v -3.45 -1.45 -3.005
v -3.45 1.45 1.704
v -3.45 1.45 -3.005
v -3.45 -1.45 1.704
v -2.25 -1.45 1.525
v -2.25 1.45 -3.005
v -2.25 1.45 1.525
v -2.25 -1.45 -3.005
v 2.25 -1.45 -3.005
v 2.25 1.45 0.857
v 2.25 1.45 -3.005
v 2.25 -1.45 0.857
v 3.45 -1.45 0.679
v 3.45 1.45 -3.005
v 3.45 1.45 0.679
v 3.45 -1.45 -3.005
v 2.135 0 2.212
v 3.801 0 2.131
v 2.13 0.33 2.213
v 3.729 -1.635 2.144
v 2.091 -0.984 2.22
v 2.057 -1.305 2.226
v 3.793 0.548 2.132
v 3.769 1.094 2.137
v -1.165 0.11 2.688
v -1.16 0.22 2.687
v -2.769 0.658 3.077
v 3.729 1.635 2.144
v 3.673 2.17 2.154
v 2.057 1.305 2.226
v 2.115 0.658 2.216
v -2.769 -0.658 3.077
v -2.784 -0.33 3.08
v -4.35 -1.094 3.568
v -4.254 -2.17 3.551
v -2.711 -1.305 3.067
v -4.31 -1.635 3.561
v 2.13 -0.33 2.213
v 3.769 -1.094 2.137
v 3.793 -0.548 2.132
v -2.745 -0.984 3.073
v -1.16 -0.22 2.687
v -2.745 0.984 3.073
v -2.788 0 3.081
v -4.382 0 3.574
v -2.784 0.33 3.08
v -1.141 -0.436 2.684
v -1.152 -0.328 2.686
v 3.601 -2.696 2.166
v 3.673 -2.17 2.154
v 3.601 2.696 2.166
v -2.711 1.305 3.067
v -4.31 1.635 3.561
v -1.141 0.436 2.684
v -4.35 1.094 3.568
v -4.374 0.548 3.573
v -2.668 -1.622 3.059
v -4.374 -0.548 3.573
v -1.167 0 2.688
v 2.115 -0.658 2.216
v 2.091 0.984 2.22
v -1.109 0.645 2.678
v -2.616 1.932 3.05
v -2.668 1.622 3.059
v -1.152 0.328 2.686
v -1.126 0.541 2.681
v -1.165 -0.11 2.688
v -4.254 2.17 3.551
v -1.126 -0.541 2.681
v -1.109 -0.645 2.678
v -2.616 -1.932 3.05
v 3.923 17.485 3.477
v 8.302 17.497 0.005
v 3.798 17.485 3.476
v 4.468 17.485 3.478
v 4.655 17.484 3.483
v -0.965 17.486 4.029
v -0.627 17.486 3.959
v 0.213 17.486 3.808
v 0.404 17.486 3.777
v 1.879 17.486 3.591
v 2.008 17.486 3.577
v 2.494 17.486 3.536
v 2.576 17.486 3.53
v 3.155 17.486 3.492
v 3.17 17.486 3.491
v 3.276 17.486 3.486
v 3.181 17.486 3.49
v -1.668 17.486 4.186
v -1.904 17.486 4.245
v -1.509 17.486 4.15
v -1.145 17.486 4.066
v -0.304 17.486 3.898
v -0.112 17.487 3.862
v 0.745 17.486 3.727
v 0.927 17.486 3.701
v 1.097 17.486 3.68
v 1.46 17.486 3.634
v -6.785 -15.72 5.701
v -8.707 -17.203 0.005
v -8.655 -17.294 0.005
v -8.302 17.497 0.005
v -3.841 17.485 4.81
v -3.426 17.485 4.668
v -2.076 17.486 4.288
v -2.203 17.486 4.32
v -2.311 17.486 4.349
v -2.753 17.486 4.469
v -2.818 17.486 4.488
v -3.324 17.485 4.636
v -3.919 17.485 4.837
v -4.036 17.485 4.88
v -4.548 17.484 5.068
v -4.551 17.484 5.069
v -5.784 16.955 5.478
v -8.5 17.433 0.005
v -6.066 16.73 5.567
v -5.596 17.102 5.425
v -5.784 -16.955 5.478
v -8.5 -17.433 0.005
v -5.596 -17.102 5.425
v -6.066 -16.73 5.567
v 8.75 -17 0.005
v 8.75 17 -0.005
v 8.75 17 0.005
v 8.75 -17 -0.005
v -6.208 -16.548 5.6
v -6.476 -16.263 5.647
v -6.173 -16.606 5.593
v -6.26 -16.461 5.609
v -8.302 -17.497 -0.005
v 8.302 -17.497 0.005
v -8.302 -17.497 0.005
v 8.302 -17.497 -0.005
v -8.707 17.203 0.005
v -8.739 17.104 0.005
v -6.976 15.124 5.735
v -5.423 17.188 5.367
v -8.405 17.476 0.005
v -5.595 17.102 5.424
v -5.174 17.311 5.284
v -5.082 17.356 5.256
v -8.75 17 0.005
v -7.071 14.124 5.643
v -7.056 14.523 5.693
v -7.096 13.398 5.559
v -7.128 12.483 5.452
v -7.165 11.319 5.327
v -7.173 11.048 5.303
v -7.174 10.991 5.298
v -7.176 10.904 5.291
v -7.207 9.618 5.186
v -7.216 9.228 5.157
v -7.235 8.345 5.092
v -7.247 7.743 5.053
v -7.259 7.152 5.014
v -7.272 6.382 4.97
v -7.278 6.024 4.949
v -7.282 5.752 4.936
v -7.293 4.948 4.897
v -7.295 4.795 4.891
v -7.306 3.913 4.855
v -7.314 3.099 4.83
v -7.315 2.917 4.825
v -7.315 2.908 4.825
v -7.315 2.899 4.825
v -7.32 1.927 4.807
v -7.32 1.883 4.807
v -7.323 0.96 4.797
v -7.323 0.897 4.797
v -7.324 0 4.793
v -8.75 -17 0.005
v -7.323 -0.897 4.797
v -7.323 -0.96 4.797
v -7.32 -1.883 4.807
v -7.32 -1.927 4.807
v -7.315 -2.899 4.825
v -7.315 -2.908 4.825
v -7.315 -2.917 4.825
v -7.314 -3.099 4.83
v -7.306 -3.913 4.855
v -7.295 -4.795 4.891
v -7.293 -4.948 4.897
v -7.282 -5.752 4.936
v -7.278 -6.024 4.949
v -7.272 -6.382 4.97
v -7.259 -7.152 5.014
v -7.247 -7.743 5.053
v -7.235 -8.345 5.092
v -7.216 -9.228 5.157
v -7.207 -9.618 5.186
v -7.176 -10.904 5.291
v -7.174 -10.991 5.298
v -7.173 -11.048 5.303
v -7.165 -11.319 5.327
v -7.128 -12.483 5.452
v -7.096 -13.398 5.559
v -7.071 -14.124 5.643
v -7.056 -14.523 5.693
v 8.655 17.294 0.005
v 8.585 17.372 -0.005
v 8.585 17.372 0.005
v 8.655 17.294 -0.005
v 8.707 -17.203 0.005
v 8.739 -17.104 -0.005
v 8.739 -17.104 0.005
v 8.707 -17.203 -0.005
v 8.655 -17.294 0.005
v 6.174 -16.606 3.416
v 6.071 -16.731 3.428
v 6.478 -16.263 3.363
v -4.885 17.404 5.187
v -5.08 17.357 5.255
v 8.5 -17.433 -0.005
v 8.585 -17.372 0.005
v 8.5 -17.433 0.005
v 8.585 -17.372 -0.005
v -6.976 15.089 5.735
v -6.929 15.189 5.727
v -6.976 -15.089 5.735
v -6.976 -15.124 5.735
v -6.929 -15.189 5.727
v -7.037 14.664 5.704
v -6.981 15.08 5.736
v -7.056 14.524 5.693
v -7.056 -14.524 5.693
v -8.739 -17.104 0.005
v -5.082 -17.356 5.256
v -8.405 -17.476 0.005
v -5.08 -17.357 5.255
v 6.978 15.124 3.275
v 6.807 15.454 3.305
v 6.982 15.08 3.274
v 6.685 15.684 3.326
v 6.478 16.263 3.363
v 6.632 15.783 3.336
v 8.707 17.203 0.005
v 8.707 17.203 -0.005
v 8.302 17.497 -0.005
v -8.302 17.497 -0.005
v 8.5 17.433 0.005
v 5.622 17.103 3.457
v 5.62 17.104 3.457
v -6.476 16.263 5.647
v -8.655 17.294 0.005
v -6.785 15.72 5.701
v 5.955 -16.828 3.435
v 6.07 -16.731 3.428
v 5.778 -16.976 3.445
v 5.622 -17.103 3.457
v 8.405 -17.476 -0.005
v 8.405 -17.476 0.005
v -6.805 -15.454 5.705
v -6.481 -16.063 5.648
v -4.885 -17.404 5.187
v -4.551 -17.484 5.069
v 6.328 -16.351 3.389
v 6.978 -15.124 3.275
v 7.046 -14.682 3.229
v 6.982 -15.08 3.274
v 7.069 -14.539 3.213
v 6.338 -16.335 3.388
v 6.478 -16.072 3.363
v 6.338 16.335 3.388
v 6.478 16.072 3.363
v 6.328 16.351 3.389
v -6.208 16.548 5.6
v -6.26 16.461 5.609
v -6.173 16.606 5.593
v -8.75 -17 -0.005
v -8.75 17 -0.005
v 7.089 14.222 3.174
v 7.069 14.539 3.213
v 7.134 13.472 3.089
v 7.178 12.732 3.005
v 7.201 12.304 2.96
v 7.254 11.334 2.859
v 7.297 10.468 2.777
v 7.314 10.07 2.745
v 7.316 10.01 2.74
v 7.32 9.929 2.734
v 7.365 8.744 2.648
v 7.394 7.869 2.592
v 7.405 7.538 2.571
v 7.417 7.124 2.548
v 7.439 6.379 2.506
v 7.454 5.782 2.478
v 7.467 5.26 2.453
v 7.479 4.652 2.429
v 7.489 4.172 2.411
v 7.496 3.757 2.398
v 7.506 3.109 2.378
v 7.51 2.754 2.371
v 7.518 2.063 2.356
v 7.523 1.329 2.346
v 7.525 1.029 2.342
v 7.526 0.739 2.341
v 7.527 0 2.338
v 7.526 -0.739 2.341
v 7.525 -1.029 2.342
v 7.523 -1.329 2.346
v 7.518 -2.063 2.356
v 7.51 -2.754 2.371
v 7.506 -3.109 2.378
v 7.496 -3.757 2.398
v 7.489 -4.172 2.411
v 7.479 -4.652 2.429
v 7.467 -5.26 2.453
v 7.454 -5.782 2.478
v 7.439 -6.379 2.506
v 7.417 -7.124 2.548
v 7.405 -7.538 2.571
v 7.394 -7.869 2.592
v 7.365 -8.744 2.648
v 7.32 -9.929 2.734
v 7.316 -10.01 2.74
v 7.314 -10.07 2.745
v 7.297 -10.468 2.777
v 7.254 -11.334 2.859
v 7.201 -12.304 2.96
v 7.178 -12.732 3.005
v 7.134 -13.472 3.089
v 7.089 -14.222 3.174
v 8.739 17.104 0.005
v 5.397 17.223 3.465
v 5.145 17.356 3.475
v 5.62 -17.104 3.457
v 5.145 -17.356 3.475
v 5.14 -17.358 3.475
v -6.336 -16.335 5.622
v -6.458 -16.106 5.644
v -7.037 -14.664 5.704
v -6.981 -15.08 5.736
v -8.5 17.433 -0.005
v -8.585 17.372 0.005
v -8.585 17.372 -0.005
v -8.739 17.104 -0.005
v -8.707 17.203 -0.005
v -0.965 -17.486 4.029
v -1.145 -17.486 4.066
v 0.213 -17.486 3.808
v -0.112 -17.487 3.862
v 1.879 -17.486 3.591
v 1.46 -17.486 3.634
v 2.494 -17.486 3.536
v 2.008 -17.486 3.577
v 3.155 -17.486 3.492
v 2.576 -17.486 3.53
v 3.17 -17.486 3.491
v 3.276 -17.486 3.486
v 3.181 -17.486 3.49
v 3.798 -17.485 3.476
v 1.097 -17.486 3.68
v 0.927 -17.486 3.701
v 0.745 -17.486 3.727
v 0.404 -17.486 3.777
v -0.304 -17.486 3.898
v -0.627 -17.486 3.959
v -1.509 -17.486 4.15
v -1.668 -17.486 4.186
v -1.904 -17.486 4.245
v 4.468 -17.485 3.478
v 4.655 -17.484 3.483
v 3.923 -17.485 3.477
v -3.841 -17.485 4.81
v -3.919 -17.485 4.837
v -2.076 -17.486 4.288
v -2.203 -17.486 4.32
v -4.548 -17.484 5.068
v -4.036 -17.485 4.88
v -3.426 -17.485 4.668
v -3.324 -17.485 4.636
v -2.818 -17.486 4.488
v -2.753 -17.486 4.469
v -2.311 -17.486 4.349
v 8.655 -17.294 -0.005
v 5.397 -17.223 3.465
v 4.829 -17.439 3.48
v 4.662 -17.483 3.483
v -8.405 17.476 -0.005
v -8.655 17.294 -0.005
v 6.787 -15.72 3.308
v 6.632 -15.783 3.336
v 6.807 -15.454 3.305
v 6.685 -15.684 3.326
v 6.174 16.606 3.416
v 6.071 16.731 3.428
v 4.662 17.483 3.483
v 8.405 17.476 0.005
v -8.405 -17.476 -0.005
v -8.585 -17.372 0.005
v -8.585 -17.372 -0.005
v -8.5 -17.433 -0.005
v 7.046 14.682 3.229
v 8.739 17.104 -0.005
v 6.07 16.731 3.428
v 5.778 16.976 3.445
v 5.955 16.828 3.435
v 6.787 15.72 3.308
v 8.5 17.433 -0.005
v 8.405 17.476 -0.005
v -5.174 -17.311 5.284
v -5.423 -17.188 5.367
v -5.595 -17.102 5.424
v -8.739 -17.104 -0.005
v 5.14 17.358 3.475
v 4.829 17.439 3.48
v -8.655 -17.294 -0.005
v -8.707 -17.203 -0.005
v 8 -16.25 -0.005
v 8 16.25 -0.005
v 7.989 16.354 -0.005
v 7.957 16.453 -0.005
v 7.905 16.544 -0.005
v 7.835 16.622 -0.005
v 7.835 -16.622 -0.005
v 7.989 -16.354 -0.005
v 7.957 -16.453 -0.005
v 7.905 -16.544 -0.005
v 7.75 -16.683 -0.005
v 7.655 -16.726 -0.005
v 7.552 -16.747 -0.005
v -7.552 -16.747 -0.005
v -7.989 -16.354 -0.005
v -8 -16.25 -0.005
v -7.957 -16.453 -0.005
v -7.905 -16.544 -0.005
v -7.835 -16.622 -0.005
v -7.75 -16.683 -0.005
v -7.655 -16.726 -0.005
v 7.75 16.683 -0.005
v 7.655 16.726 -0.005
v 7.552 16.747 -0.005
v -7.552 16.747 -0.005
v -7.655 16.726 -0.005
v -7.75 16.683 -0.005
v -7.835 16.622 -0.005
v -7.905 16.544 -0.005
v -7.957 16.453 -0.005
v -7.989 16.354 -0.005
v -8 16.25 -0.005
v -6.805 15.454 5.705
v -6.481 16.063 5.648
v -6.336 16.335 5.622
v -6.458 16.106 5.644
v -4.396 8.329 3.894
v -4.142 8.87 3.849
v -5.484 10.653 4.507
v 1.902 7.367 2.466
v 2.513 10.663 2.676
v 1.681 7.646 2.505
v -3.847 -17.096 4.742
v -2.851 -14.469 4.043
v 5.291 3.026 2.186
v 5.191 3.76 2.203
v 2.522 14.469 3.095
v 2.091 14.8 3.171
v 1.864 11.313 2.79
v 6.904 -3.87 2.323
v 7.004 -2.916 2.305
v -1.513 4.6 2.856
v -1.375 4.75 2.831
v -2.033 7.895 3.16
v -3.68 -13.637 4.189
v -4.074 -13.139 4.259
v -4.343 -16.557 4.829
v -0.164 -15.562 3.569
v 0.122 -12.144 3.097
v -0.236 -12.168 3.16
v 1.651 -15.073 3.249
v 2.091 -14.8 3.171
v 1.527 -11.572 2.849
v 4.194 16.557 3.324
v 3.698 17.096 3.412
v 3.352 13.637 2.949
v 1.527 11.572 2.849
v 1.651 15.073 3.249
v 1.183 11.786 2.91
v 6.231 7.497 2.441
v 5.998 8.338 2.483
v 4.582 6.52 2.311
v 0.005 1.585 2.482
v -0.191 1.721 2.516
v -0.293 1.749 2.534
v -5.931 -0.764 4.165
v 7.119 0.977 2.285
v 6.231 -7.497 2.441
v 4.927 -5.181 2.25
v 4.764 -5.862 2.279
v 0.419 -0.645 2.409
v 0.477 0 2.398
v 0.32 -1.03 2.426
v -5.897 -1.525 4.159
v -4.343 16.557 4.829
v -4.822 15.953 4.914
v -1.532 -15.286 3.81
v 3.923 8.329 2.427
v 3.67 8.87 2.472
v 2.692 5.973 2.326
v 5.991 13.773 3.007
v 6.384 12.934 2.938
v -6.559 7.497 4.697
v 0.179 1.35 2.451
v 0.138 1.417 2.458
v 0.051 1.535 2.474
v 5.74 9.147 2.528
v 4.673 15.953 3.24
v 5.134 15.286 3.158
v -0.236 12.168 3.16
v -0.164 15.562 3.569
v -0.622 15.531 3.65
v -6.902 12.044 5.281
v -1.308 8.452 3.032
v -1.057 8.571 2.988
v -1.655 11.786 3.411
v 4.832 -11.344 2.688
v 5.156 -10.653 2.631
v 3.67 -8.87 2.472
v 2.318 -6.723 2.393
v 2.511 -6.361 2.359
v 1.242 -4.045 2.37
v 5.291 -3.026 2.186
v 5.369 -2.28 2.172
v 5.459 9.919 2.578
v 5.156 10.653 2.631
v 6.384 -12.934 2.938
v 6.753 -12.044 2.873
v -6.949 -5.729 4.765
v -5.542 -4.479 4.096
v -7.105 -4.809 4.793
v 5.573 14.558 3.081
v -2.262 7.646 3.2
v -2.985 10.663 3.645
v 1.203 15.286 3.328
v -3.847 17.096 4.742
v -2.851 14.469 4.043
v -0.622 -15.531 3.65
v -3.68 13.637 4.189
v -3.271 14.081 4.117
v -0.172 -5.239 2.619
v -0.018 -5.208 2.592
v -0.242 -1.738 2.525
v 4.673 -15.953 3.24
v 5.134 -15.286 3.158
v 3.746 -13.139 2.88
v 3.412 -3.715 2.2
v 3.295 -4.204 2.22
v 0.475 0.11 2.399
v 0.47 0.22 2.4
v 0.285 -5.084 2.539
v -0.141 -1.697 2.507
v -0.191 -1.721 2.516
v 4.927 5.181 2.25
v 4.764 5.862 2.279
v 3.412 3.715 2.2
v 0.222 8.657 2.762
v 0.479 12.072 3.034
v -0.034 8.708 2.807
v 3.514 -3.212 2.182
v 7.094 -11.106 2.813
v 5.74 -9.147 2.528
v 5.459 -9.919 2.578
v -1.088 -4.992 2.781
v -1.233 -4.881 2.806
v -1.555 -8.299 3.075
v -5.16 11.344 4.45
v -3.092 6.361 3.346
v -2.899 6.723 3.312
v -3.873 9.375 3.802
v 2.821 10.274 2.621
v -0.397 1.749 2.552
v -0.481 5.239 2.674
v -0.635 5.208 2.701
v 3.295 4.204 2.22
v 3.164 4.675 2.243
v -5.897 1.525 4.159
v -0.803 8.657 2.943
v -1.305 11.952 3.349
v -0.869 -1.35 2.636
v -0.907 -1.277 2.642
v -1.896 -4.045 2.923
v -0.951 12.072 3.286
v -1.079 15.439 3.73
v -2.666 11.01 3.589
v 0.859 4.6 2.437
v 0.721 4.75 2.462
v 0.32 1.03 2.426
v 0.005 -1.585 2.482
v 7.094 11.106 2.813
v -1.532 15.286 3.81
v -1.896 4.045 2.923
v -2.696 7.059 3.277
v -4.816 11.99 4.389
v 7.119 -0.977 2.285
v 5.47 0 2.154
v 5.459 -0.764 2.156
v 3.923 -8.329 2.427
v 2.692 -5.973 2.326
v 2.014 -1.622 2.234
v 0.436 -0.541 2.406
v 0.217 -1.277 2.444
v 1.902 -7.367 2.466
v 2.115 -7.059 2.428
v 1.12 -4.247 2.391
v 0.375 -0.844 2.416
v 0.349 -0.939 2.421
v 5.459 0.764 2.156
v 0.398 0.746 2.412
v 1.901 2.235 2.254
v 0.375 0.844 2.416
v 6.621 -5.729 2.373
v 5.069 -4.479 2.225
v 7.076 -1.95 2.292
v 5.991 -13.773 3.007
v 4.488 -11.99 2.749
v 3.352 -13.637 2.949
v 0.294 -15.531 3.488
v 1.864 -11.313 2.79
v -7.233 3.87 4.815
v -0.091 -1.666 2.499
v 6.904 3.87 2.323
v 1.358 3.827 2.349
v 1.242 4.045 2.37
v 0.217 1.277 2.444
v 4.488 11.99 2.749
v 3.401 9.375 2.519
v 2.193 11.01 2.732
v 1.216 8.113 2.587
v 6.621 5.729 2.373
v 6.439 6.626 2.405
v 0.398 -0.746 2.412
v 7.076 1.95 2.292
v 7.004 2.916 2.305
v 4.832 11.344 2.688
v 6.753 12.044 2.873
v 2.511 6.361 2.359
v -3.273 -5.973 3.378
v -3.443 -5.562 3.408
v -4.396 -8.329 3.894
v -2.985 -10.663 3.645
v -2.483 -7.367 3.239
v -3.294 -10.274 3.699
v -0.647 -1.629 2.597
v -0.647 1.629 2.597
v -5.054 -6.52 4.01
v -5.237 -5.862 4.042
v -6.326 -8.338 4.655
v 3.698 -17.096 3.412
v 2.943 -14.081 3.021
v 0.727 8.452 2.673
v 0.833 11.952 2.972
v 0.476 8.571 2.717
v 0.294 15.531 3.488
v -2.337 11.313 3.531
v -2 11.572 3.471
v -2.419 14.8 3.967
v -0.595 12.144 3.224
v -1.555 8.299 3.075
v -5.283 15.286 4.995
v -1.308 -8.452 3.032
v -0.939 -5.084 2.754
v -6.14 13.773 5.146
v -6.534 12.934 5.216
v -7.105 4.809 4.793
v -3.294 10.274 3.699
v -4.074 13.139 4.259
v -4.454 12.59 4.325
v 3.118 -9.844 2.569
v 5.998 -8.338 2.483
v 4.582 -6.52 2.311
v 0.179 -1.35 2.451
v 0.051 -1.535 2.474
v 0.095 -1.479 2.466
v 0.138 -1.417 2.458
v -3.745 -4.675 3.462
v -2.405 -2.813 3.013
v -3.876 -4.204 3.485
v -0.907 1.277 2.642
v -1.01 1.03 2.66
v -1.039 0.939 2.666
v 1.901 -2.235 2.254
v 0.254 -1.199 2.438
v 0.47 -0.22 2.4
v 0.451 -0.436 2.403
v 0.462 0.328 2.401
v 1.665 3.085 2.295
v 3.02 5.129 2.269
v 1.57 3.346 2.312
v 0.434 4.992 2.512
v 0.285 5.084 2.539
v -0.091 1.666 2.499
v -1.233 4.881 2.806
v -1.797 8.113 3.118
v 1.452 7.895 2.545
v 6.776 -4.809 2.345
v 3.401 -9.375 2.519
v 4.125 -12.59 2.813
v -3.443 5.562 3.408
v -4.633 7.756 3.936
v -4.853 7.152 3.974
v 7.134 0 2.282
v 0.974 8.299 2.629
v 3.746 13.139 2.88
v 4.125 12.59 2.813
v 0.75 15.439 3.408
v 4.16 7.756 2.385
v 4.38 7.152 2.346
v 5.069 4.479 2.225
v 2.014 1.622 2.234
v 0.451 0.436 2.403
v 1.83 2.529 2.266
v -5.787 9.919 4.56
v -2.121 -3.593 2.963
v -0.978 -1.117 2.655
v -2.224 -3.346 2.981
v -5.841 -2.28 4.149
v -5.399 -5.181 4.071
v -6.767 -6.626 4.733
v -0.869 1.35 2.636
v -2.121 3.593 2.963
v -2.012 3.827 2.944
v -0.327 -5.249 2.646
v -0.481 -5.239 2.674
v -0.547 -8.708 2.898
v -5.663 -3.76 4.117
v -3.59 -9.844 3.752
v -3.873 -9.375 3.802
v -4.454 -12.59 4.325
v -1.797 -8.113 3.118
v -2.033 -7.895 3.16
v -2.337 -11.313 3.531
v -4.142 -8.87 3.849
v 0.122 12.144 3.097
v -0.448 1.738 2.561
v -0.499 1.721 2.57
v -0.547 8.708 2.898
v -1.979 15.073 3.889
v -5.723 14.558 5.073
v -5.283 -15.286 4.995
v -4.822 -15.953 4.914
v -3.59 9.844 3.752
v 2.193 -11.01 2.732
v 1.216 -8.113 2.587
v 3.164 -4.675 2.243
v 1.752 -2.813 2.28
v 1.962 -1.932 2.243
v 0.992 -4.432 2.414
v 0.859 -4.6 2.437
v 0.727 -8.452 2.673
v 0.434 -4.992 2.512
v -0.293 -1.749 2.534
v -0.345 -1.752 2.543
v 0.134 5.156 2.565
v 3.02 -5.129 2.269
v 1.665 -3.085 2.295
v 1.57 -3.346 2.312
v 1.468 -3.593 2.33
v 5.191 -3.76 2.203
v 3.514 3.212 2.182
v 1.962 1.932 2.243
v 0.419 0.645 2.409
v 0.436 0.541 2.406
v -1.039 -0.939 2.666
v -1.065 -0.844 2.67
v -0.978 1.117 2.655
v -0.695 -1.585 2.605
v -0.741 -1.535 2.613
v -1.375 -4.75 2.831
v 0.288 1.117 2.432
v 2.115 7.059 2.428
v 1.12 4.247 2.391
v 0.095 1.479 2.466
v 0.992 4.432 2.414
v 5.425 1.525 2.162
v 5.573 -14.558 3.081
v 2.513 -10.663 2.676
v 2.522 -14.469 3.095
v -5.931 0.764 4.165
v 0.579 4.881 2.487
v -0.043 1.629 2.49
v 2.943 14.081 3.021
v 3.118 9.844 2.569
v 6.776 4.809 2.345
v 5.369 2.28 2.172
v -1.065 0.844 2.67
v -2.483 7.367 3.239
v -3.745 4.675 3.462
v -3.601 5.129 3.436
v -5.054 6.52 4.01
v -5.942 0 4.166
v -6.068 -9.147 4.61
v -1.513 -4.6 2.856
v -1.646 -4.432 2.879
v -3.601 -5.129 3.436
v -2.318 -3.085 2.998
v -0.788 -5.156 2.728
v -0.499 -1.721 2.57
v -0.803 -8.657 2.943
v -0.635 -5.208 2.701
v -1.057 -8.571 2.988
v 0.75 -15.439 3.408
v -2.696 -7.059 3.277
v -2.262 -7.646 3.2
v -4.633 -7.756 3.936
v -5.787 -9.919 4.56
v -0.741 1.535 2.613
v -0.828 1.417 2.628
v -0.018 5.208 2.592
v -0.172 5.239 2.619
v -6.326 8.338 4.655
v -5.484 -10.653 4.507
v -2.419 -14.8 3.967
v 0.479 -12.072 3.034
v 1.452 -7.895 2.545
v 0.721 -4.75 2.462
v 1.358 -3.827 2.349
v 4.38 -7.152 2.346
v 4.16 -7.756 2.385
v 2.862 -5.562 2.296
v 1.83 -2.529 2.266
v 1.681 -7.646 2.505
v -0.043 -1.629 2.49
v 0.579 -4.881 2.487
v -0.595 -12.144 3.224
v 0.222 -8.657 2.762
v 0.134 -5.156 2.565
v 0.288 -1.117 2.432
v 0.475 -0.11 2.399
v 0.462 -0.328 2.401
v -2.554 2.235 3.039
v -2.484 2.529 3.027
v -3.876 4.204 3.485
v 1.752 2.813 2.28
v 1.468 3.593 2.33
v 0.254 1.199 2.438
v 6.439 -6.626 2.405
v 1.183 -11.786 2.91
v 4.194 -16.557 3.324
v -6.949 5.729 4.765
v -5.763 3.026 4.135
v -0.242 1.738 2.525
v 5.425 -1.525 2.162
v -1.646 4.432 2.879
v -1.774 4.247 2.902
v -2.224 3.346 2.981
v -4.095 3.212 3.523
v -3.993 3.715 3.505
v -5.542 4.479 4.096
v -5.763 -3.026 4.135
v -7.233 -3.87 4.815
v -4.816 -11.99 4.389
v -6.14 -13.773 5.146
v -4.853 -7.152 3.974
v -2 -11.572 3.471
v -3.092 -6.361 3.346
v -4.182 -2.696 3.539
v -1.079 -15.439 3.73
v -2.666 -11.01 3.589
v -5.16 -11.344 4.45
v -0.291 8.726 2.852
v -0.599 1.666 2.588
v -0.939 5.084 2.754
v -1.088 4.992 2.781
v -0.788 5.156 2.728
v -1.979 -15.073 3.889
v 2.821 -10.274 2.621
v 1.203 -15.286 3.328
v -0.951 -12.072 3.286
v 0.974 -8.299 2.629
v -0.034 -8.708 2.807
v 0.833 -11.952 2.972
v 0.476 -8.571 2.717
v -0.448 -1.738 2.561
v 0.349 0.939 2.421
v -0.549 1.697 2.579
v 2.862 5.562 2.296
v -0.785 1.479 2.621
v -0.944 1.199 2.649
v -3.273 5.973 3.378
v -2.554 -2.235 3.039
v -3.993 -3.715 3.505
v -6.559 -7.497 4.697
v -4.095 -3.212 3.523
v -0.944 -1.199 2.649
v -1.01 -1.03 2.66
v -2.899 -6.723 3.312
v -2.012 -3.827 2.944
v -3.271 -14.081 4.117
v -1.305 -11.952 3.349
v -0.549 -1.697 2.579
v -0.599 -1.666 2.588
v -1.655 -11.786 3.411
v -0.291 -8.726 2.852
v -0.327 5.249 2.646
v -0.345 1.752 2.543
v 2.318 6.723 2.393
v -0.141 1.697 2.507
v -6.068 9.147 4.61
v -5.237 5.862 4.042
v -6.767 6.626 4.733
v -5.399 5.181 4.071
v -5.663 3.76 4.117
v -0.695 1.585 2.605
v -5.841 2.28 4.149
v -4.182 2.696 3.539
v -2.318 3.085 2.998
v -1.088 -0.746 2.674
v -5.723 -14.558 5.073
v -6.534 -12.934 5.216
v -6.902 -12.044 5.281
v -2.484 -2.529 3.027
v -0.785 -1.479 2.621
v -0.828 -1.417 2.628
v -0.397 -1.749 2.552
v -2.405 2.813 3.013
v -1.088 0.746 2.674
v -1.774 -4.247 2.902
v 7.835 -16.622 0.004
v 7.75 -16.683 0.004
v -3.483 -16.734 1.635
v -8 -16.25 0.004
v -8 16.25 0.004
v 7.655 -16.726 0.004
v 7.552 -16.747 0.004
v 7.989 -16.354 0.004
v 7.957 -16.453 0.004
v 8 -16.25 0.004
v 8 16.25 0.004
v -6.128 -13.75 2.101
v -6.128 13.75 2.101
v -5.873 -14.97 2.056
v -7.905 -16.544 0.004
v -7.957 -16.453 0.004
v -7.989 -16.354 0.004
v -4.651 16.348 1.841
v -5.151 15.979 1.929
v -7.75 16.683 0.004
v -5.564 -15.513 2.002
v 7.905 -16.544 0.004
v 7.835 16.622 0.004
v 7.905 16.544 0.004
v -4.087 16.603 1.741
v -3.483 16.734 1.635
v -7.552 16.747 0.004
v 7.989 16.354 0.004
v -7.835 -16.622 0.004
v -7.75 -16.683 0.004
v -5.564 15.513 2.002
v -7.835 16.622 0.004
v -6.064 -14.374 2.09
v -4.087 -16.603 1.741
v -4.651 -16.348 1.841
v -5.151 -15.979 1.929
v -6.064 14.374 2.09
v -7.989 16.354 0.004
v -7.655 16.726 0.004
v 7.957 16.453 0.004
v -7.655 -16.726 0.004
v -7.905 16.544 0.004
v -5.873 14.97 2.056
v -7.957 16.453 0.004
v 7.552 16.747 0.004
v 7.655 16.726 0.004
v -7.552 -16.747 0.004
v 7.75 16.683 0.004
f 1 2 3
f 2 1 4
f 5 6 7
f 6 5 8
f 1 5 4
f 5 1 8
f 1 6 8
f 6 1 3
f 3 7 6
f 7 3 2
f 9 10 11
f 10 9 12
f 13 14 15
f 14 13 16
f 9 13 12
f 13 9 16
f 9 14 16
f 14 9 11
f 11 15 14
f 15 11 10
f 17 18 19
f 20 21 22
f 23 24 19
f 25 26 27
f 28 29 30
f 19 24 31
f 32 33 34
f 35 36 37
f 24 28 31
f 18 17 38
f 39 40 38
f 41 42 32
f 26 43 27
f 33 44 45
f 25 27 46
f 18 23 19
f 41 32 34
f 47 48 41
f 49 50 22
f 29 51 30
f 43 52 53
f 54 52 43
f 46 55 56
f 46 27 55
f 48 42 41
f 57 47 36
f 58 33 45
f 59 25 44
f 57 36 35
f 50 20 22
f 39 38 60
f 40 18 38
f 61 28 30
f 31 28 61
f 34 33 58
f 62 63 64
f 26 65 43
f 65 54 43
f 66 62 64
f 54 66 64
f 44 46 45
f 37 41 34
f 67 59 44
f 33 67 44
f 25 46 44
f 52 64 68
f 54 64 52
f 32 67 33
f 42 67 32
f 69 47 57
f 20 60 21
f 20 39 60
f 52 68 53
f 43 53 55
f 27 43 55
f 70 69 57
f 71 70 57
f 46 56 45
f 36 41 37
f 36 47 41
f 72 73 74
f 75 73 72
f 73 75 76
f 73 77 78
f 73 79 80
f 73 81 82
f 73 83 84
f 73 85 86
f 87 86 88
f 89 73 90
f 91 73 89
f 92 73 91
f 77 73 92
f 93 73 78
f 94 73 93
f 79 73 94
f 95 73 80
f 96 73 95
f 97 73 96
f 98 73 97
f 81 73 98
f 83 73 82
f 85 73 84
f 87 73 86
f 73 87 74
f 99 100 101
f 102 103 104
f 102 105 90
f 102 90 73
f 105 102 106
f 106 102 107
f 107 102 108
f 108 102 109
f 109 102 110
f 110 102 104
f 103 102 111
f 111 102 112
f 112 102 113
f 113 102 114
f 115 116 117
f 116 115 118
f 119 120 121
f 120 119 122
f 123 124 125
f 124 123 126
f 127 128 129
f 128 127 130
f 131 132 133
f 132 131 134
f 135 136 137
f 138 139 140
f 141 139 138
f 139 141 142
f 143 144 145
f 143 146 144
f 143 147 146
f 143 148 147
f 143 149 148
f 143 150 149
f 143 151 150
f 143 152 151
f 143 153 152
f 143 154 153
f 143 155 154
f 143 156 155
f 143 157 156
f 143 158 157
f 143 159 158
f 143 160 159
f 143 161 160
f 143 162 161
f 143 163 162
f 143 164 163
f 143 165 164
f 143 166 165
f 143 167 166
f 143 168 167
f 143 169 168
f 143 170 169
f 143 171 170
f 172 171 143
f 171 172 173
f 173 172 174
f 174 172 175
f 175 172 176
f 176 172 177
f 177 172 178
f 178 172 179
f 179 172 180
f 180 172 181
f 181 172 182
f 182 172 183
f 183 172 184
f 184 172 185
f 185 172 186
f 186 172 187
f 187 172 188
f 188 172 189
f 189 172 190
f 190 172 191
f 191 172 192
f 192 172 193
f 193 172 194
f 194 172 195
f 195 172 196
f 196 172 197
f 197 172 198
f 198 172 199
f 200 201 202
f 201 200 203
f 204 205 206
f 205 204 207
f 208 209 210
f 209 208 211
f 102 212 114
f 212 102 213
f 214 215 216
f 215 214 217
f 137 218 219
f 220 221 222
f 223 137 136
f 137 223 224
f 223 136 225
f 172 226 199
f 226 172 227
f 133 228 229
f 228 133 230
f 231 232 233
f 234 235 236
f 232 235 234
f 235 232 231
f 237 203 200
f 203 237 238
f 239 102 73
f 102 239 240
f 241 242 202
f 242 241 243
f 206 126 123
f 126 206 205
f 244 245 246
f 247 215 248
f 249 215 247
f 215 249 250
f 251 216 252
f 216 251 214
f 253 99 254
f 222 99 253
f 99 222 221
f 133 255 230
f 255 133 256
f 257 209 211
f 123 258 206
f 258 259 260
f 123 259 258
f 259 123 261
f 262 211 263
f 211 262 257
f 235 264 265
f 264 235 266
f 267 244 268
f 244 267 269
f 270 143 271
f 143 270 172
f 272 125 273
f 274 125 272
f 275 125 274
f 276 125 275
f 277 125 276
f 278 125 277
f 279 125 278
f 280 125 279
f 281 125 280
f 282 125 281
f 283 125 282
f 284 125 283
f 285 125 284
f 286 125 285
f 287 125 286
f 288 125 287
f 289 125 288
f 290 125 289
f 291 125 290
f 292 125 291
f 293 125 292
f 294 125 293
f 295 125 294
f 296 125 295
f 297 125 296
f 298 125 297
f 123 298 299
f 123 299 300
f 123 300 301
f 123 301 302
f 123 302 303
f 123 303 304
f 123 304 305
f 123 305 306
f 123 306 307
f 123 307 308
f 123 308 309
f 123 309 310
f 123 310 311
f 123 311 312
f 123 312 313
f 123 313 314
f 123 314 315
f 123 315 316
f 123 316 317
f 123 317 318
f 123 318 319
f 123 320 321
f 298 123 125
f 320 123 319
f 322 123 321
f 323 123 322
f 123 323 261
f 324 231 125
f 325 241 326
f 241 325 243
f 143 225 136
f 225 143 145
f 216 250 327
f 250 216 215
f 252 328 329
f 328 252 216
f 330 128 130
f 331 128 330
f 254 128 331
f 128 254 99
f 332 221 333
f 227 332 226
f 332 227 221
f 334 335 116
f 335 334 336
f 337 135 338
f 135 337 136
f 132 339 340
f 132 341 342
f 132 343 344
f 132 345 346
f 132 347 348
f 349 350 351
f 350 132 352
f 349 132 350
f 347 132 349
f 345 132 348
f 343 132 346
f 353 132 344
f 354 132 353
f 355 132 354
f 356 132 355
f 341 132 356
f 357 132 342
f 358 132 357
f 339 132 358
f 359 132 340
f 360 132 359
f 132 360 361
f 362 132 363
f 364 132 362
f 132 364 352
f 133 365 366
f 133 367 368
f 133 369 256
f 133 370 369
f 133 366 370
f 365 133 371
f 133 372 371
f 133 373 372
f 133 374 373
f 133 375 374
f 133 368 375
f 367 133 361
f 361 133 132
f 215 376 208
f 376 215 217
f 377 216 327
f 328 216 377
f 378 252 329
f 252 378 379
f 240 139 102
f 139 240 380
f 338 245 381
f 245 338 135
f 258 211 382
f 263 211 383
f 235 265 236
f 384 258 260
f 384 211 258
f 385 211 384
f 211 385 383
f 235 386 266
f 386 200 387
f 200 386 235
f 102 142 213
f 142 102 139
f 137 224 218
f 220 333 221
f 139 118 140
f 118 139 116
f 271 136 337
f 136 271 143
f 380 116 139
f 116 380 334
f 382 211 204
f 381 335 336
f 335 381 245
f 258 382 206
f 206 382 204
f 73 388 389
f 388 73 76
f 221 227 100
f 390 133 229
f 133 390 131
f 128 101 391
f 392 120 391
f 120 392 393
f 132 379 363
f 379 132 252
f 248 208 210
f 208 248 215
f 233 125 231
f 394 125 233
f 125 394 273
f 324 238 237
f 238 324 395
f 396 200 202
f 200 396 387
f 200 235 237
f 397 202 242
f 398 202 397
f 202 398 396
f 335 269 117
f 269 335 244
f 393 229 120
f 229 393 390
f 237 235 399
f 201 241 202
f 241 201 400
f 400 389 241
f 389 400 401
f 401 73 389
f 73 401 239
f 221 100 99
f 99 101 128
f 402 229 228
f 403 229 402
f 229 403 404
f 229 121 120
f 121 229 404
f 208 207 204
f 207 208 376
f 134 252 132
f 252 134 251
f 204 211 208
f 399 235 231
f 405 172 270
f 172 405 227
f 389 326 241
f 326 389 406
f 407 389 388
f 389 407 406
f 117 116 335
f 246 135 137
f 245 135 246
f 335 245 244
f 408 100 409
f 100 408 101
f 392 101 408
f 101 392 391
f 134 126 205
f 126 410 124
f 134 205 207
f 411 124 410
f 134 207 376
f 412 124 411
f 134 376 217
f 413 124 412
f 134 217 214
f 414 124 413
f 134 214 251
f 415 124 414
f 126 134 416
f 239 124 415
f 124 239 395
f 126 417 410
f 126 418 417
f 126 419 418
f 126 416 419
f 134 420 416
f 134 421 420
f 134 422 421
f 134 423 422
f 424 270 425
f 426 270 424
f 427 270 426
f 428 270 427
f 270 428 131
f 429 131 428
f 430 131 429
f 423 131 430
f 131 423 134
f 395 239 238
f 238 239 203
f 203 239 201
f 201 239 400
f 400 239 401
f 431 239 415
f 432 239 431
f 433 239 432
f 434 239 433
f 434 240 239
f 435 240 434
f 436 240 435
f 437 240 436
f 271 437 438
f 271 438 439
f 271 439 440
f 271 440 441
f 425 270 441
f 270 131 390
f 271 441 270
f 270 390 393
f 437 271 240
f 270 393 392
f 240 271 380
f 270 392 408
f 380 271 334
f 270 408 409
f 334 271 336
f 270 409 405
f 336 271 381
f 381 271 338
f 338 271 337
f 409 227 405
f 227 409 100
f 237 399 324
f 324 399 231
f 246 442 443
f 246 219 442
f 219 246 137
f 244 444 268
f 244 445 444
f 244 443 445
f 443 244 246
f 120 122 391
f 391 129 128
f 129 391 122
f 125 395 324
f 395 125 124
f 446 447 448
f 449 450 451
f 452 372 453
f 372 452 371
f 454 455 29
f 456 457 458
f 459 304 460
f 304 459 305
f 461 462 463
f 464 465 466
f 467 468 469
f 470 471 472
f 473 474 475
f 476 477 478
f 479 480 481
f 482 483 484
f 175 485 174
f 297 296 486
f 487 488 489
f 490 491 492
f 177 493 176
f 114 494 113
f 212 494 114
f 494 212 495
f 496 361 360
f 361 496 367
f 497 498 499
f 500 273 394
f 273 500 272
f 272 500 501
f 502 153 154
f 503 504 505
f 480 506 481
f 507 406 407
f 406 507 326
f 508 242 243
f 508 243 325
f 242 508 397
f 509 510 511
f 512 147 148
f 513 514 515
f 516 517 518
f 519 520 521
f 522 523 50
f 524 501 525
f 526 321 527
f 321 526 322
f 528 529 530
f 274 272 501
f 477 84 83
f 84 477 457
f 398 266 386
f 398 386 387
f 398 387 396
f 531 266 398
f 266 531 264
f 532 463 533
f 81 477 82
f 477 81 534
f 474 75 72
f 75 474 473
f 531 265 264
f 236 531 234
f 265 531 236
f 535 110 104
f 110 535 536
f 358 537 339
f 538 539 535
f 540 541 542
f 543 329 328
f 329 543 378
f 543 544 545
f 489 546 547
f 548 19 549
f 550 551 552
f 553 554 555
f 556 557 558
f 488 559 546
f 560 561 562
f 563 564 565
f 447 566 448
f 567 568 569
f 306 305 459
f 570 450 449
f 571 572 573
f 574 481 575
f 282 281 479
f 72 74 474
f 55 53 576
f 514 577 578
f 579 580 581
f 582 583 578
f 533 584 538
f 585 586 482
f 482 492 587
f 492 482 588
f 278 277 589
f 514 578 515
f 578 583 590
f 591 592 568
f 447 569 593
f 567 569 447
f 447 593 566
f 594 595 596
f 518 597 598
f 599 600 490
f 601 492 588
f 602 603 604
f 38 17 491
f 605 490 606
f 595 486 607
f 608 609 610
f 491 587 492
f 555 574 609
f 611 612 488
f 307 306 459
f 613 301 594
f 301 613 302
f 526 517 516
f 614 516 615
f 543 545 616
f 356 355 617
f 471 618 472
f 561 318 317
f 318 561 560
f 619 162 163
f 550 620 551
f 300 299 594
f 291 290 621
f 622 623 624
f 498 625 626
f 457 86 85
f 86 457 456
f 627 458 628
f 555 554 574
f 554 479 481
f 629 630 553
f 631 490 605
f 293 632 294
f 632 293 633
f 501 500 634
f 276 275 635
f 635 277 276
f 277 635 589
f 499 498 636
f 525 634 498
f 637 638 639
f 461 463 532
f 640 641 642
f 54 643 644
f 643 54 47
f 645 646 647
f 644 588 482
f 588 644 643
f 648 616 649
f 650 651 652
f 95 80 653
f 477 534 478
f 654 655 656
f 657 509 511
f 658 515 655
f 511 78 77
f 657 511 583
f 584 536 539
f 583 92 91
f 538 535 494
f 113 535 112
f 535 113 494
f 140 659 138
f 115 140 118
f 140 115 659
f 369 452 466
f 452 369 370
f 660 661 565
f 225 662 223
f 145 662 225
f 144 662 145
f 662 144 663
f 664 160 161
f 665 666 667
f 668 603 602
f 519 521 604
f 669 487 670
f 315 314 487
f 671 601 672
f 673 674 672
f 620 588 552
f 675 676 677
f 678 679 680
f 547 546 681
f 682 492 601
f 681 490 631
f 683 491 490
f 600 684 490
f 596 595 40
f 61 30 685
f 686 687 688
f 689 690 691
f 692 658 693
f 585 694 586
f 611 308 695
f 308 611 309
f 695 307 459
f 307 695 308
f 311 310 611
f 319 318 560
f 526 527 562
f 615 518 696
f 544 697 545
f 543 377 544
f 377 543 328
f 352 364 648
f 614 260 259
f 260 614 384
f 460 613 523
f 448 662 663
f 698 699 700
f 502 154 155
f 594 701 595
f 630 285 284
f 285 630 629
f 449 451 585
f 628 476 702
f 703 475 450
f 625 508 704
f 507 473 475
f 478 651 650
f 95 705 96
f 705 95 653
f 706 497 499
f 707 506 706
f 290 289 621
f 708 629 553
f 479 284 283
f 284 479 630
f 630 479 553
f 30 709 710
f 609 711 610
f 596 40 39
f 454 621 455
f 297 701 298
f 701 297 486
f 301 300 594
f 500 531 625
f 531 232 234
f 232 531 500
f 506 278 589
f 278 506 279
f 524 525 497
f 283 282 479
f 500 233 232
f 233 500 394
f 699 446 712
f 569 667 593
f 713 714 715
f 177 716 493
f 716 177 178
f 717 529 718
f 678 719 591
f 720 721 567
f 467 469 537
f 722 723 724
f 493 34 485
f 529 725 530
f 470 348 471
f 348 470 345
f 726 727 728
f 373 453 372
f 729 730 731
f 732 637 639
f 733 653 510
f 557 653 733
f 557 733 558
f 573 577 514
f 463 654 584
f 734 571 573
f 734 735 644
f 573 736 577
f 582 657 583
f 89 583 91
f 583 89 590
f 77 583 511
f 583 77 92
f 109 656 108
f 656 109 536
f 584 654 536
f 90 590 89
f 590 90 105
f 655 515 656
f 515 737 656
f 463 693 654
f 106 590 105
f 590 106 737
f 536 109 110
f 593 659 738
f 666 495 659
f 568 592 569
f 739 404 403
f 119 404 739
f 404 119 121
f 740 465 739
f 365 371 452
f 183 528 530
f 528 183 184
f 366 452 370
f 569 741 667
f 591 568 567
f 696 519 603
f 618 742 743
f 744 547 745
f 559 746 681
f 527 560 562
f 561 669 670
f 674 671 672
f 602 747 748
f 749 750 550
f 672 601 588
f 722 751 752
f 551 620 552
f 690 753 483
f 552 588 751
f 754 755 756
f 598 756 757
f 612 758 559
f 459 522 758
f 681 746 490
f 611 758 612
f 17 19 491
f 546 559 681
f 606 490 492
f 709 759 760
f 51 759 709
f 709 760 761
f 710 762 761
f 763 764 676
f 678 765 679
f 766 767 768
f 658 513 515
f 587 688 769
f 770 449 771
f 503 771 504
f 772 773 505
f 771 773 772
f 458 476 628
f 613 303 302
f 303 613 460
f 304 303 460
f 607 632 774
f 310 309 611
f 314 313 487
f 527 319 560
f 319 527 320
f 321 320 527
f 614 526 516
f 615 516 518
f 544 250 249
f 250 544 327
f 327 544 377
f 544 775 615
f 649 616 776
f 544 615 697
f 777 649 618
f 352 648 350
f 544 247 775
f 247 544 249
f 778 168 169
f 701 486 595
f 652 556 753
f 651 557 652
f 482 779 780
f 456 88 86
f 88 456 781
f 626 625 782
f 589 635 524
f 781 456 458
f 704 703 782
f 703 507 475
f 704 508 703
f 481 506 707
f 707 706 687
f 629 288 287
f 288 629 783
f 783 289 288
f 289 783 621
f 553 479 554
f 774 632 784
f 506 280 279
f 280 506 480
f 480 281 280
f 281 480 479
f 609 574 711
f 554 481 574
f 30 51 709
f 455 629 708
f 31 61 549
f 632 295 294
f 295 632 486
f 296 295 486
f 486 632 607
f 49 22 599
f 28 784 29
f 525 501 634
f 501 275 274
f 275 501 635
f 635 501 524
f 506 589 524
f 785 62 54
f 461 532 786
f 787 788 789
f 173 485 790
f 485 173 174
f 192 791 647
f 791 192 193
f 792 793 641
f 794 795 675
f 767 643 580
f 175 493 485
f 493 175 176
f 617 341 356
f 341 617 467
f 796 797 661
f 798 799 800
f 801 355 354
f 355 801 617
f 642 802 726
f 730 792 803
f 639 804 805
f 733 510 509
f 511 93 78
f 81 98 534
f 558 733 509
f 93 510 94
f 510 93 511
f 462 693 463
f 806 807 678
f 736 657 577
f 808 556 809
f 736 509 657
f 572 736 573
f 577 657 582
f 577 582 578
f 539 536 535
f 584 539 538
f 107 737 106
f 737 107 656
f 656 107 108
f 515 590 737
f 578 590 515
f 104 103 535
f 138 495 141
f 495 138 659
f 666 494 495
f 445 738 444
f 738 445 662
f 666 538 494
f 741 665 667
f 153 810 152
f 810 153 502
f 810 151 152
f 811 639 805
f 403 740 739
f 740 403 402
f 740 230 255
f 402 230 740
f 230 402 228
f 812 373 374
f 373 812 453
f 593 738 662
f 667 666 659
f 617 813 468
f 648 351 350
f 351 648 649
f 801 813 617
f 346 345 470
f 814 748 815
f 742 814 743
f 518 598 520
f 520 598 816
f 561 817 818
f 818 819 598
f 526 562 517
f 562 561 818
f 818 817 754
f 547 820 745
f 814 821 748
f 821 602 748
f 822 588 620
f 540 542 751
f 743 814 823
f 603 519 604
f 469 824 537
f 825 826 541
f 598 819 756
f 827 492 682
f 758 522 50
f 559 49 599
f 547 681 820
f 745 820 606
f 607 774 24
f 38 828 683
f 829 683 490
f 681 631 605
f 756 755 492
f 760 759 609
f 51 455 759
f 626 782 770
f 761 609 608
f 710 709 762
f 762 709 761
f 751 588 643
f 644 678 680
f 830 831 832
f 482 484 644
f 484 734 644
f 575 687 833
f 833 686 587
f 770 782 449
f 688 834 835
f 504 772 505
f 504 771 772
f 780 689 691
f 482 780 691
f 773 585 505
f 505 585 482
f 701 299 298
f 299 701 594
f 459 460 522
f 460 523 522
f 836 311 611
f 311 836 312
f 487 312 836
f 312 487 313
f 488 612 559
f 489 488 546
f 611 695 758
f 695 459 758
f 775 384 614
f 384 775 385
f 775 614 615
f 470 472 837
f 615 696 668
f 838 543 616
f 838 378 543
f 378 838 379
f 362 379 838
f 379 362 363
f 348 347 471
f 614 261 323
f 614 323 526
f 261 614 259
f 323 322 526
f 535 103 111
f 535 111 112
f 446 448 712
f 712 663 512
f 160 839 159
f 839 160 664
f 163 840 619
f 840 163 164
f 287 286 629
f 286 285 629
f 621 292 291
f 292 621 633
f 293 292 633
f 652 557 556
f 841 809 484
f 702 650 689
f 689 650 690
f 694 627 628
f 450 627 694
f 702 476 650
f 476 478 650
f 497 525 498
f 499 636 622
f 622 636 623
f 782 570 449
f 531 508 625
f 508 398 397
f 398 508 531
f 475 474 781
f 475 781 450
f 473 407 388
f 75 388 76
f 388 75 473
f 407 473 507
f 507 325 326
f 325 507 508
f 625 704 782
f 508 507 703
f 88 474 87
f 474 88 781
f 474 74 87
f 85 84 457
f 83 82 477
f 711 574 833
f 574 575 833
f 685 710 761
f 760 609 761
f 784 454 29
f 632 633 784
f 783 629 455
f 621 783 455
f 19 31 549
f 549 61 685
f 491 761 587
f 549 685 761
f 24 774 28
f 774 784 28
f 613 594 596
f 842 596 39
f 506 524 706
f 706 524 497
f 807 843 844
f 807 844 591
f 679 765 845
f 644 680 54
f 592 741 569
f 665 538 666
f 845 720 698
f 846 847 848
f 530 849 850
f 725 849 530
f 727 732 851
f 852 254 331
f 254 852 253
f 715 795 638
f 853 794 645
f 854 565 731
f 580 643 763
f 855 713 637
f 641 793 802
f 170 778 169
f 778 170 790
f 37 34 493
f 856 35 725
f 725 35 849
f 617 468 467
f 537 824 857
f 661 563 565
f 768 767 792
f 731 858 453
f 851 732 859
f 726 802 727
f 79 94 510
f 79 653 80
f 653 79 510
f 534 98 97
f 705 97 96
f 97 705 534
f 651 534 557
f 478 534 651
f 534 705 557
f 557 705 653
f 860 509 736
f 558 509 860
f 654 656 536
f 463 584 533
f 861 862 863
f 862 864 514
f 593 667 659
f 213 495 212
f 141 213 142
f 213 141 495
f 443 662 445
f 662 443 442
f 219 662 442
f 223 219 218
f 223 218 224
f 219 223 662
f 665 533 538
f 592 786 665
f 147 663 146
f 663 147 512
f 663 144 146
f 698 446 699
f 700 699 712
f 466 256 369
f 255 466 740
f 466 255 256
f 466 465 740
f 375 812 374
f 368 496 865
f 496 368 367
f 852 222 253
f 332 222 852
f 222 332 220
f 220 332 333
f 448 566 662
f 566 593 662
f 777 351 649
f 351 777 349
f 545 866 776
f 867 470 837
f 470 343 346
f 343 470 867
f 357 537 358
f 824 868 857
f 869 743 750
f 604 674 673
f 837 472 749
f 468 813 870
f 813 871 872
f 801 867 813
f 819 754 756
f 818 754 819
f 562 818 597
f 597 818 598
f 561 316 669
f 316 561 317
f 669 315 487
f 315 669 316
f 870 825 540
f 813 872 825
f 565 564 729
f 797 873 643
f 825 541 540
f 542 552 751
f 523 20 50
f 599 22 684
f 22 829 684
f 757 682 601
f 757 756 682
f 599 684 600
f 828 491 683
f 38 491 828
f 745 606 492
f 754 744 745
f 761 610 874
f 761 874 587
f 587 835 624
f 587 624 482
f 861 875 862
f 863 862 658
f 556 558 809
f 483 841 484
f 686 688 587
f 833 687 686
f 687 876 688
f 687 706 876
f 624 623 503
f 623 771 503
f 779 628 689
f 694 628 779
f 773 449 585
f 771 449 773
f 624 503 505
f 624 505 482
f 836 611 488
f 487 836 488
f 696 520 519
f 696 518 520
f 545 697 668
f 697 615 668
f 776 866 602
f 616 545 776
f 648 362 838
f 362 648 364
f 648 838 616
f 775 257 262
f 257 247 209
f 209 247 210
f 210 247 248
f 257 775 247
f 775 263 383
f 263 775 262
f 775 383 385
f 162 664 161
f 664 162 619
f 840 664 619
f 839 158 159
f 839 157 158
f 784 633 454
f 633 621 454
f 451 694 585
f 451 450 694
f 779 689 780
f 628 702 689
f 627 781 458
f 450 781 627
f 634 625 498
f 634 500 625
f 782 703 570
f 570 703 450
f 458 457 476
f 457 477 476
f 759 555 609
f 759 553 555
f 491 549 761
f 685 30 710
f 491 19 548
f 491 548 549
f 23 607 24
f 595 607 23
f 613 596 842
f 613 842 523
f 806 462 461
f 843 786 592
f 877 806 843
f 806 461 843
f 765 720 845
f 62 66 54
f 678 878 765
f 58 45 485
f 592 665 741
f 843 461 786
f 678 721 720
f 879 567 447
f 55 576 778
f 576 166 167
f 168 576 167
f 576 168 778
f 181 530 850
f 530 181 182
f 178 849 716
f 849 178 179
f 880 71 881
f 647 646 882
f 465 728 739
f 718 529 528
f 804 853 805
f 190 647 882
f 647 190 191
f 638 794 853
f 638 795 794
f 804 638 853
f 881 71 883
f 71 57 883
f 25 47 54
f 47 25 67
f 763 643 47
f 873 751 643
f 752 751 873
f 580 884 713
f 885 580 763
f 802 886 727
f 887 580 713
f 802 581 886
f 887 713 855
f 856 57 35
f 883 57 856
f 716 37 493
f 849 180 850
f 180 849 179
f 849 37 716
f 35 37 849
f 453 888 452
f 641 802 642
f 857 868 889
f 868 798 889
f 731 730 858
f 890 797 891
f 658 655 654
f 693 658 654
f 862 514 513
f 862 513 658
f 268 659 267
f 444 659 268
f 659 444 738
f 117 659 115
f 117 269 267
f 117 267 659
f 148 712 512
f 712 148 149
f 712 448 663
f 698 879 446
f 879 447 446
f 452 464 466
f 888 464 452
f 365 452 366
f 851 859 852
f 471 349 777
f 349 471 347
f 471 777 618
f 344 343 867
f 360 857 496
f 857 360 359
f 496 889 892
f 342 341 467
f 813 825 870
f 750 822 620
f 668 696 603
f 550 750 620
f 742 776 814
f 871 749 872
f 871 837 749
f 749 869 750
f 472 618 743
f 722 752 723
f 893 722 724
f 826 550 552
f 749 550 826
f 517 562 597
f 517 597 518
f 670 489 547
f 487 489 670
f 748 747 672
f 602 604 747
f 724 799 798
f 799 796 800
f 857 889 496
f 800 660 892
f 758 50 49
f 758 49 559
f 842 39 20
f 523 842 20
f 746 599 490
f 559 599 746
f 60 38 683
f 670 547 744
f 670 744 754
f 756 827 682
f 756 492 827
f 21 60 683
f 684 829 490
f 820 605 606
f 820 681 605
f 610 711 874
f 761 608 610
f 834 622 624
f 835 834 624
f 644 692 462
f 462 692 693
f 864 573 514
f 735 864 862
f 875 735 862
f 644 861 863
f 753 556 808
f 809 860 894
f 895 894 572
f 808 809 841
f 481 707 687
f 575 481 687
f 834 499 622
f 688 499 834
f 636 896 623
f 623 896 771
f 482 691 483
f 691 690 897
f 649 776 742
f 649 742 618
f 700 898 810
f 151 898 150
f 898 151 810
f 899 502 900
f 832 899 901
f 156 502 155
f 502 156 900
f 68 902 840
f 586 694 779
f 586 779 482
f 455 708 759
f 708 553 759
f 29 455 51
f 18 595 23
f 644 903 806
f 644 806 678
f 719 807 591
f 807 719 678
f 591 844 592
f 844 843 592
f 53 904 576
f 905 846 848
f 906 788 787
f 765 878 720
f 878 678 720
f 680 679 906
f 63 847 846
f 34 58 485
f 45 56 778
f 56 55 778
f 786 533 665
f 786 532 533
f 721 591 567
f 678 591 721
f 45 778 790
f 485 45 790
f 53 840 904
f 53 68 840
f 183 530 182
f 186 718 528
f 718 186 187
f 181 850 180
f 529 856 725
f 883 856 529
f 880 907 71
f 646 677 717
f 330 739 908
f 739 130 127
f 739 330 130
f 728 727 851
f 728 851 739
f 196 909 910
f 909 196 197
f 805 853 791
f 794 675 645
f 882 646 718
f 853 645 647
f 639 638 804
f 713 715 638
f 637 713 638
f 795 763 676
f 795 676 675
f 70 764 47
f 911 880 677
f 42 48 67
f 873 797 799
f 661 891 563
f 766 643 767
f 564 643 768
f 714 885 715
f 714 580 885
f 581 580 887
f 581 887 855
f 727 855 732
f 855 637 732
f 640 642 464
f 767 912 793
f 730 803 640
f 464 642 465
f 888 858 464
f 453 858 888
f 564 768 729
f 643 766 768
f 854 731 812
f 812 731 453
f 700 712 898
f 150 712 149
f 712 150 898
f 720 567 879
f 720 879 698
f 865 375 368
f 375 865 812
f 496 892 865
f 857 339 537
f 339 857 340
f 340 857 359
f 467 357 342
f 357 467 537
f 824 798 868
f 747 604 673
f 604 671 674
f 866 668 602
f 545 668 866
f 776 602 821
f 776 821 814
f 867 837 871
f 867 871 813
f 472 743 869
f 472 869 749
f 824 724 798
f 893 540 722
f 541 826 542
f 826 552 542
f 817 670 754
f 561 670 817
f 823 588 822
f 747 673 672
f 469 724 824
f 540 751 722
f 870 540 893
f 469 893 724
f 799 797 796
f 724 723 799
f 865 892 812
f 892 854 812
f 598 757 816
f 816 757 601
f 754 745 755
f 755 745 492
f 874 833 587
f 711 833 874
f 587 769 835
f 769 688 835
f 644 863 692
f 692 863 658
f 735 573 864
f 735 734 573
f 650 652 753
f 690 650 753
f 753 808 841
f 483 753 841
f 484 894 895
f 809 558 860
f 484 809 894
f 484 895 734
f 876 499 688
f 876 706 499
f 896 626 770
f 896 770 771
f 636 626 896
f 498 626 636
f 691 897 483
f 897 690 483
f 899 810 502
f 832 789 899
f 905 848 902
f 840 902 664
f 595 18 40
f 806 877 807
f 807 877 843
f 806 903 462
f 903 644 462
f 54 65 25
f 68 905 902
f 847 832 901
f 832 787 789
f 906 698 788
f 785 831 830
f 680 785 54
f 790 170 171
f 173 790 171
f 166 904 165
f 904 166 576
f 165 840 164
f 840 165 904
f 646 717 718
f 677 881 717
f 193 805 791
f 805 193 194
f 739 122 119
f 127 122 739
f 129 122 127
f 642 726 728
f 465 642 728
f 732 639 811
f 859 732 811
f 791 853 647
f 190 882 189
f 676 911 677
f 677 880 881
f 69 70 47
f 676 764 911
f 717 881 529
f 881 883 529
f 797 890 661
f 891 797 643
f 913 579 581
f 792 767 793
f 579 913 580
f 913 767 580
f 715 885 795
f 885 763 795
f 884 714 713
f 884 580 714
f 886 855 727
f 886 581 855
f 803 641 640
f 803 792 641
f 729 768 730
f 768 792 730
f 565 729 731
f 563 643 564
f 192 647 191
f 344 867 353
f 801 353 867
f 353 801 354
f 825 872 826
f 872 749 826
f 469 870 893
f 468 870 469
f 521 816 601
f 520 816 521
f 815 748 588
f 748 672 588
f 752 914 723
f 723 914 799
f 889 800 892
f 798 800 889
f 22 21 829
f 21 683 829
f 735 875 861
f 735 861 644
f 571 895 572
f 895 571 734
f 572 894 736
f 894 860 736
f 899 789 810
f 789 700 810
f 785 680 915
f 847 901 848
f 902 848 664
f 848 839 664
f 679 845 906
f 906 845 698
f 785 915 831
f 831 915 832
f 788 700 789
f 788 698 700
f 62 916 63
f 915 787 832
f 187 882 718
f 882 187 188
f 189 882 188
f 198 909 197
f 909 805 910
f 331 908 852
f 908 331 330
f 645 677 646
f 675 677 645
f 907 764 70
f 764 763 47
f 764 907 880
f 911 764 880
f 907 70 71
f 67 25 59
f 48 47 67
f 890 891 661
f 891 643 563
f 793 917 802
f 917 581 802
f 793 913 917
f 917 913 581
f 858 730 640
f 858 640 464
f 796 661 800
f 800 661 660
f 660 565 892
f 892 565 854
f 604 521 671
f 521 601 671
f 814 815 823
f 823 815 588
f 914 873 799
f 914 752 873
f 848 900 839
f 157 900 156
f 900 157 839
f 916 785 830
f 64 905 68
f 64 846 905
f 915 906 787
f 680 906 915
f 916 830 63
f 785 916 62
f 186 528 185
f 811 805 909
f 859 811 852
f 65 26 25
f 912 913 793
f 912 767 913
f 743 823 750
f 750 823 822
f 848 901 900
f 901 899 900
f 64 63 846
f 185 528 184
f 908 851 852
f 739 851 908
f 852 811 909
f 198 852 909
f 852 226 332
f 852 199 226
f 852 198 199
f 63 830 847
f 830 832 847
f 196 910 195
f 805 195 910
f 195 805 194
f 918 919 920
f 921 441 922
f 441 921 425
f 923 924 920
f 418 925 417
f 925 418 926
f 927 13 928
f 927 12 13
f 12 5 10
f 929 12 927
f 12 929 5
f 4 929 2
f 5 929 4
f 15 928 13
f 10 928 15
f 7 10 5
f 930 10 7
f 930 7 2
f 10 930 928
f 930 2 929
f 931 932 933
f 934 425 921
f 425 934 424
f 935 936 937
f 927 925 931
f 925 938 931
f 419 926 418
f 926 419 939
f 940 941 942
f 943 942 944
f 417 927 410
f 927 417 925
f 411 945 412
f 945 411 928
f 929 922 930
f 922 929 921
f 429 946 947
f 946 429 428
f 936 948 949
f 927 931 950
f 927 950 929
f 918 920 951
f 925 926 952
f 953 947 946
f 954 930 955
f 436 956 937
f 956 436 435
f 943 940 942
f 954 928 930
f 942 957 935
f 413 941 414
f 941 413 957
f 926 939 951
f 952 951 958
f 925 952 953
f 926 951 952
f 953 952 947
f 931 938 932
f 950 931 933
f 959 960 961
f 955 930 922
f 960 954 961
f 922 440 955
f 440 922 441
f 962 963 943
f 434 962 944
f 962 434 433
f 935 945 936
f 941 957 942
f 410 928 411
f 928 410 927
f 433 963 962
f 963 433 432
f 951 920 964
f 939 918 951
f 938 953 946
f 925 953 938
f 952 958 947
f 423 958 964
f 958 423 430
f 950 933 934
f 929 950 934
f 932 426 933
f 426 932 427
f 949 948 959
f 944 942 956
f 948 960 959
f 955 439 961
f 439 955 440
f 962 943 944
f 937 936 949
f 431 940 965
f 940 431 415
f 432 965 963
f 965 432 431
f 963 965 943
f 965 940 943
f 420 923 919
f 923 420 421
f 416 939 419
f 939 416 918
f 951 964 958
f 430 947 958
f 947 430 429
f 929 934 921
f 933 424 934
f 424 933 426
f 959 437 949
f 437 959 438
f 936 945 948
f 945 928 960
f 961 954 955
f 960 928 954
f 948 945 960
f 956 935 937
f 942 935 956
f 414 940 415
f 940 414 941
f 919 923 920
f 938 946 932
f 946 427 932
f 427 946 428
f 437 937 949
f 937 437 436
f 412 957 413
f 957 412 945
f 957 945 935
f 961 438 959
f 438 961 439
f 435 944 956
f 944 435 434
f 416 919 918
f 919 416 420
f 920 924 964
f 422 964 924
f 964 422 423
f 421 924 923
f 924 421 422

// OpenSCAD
union () {
  difference () {
    translate ([-2.85, 0, 0]) {
      union () {
        color ([0, 1, 0, ]) {
          hull () {
            translate ([0, 0, 5]) {
              cube ([1.2, 2.9, 0.01], center=true);
            }
            translate ([0, 0, -3]) {
              translate ([0, 0, 0]) {
                cube ([1.2, 2.9, 0.01], center=true);
              }
            }
          }
        }
        color ([0, 1, 0, ]) {
          hull () {
            translate ([5.7, 0, 5]) {
              cube ([1.2, 2.9, 0.01], center=true);
            }
            translate ([0, 0, -3]) {
              translate ([5.7, 0, 0]) {
                cube ([1.2, 2.9, 0.01], center=true);
              }
            }
          }
        }
      }
    }
    translate ([0, 0, 4.5]) {
      rotate ([0.0,10.000000000000002,0.0]) {
        translate ([0, 0, 24.56125000000001]) {
          scale ([1, 2.1, 1]) {
            sphere ($fn=100, r=26.56125000000001);
          }
        }
      }
    }
  }
  difference () {
    difference () {
      hull () {
        translate ([0, 0, 4.5]) {
          rotate ([0.0,10.000000000000002,0.0]) {
            minkowski () {
              cube ([8.3, 29.0, 0.0099], center=true);
              cylinder ($fs=0.1, h=1.0E-4, r=3, center=true);
            }
          }
        }
        minkowski () {
          cube ([16.5, 34.0, 0.0099], center=true);
          cylinder ($fs=0.1, h=1.0E-4, r=0.5, center=true);
        }
      }
      translate ([0, 0, 4.5]) {
        rotate ([0.0,10.000000000000002,0.0]) {
          translate ([0, 0, 24.56125000000001]) {
            scale ([1, 2.1, 1]) {
              sphere ($fn=100, r=26.56125000000001);
            }
          }
        }
      }
    }
    #union () {
      hull () {
        rotate ([0.0,10.000000000000002,0.0]) {
          translate ([0, 0, 1.0]) {
            minkowski () {
              cube ([6.800000000000001, 27.5, 0.0099], center=true);
              cylinder ($fs=0.1, h=1.0E-4, r=3, center=true);
            }
          }
        }
        translate ([0, 0, -0.001]) {
          minkowski () {
            cube ([15.0, 32.5, 0.0099], center=true);
            cylinder ($fs=0.1, h=1.0E-4, r=0.5, center=true);
          }
        }
      }
    }
  }
}
